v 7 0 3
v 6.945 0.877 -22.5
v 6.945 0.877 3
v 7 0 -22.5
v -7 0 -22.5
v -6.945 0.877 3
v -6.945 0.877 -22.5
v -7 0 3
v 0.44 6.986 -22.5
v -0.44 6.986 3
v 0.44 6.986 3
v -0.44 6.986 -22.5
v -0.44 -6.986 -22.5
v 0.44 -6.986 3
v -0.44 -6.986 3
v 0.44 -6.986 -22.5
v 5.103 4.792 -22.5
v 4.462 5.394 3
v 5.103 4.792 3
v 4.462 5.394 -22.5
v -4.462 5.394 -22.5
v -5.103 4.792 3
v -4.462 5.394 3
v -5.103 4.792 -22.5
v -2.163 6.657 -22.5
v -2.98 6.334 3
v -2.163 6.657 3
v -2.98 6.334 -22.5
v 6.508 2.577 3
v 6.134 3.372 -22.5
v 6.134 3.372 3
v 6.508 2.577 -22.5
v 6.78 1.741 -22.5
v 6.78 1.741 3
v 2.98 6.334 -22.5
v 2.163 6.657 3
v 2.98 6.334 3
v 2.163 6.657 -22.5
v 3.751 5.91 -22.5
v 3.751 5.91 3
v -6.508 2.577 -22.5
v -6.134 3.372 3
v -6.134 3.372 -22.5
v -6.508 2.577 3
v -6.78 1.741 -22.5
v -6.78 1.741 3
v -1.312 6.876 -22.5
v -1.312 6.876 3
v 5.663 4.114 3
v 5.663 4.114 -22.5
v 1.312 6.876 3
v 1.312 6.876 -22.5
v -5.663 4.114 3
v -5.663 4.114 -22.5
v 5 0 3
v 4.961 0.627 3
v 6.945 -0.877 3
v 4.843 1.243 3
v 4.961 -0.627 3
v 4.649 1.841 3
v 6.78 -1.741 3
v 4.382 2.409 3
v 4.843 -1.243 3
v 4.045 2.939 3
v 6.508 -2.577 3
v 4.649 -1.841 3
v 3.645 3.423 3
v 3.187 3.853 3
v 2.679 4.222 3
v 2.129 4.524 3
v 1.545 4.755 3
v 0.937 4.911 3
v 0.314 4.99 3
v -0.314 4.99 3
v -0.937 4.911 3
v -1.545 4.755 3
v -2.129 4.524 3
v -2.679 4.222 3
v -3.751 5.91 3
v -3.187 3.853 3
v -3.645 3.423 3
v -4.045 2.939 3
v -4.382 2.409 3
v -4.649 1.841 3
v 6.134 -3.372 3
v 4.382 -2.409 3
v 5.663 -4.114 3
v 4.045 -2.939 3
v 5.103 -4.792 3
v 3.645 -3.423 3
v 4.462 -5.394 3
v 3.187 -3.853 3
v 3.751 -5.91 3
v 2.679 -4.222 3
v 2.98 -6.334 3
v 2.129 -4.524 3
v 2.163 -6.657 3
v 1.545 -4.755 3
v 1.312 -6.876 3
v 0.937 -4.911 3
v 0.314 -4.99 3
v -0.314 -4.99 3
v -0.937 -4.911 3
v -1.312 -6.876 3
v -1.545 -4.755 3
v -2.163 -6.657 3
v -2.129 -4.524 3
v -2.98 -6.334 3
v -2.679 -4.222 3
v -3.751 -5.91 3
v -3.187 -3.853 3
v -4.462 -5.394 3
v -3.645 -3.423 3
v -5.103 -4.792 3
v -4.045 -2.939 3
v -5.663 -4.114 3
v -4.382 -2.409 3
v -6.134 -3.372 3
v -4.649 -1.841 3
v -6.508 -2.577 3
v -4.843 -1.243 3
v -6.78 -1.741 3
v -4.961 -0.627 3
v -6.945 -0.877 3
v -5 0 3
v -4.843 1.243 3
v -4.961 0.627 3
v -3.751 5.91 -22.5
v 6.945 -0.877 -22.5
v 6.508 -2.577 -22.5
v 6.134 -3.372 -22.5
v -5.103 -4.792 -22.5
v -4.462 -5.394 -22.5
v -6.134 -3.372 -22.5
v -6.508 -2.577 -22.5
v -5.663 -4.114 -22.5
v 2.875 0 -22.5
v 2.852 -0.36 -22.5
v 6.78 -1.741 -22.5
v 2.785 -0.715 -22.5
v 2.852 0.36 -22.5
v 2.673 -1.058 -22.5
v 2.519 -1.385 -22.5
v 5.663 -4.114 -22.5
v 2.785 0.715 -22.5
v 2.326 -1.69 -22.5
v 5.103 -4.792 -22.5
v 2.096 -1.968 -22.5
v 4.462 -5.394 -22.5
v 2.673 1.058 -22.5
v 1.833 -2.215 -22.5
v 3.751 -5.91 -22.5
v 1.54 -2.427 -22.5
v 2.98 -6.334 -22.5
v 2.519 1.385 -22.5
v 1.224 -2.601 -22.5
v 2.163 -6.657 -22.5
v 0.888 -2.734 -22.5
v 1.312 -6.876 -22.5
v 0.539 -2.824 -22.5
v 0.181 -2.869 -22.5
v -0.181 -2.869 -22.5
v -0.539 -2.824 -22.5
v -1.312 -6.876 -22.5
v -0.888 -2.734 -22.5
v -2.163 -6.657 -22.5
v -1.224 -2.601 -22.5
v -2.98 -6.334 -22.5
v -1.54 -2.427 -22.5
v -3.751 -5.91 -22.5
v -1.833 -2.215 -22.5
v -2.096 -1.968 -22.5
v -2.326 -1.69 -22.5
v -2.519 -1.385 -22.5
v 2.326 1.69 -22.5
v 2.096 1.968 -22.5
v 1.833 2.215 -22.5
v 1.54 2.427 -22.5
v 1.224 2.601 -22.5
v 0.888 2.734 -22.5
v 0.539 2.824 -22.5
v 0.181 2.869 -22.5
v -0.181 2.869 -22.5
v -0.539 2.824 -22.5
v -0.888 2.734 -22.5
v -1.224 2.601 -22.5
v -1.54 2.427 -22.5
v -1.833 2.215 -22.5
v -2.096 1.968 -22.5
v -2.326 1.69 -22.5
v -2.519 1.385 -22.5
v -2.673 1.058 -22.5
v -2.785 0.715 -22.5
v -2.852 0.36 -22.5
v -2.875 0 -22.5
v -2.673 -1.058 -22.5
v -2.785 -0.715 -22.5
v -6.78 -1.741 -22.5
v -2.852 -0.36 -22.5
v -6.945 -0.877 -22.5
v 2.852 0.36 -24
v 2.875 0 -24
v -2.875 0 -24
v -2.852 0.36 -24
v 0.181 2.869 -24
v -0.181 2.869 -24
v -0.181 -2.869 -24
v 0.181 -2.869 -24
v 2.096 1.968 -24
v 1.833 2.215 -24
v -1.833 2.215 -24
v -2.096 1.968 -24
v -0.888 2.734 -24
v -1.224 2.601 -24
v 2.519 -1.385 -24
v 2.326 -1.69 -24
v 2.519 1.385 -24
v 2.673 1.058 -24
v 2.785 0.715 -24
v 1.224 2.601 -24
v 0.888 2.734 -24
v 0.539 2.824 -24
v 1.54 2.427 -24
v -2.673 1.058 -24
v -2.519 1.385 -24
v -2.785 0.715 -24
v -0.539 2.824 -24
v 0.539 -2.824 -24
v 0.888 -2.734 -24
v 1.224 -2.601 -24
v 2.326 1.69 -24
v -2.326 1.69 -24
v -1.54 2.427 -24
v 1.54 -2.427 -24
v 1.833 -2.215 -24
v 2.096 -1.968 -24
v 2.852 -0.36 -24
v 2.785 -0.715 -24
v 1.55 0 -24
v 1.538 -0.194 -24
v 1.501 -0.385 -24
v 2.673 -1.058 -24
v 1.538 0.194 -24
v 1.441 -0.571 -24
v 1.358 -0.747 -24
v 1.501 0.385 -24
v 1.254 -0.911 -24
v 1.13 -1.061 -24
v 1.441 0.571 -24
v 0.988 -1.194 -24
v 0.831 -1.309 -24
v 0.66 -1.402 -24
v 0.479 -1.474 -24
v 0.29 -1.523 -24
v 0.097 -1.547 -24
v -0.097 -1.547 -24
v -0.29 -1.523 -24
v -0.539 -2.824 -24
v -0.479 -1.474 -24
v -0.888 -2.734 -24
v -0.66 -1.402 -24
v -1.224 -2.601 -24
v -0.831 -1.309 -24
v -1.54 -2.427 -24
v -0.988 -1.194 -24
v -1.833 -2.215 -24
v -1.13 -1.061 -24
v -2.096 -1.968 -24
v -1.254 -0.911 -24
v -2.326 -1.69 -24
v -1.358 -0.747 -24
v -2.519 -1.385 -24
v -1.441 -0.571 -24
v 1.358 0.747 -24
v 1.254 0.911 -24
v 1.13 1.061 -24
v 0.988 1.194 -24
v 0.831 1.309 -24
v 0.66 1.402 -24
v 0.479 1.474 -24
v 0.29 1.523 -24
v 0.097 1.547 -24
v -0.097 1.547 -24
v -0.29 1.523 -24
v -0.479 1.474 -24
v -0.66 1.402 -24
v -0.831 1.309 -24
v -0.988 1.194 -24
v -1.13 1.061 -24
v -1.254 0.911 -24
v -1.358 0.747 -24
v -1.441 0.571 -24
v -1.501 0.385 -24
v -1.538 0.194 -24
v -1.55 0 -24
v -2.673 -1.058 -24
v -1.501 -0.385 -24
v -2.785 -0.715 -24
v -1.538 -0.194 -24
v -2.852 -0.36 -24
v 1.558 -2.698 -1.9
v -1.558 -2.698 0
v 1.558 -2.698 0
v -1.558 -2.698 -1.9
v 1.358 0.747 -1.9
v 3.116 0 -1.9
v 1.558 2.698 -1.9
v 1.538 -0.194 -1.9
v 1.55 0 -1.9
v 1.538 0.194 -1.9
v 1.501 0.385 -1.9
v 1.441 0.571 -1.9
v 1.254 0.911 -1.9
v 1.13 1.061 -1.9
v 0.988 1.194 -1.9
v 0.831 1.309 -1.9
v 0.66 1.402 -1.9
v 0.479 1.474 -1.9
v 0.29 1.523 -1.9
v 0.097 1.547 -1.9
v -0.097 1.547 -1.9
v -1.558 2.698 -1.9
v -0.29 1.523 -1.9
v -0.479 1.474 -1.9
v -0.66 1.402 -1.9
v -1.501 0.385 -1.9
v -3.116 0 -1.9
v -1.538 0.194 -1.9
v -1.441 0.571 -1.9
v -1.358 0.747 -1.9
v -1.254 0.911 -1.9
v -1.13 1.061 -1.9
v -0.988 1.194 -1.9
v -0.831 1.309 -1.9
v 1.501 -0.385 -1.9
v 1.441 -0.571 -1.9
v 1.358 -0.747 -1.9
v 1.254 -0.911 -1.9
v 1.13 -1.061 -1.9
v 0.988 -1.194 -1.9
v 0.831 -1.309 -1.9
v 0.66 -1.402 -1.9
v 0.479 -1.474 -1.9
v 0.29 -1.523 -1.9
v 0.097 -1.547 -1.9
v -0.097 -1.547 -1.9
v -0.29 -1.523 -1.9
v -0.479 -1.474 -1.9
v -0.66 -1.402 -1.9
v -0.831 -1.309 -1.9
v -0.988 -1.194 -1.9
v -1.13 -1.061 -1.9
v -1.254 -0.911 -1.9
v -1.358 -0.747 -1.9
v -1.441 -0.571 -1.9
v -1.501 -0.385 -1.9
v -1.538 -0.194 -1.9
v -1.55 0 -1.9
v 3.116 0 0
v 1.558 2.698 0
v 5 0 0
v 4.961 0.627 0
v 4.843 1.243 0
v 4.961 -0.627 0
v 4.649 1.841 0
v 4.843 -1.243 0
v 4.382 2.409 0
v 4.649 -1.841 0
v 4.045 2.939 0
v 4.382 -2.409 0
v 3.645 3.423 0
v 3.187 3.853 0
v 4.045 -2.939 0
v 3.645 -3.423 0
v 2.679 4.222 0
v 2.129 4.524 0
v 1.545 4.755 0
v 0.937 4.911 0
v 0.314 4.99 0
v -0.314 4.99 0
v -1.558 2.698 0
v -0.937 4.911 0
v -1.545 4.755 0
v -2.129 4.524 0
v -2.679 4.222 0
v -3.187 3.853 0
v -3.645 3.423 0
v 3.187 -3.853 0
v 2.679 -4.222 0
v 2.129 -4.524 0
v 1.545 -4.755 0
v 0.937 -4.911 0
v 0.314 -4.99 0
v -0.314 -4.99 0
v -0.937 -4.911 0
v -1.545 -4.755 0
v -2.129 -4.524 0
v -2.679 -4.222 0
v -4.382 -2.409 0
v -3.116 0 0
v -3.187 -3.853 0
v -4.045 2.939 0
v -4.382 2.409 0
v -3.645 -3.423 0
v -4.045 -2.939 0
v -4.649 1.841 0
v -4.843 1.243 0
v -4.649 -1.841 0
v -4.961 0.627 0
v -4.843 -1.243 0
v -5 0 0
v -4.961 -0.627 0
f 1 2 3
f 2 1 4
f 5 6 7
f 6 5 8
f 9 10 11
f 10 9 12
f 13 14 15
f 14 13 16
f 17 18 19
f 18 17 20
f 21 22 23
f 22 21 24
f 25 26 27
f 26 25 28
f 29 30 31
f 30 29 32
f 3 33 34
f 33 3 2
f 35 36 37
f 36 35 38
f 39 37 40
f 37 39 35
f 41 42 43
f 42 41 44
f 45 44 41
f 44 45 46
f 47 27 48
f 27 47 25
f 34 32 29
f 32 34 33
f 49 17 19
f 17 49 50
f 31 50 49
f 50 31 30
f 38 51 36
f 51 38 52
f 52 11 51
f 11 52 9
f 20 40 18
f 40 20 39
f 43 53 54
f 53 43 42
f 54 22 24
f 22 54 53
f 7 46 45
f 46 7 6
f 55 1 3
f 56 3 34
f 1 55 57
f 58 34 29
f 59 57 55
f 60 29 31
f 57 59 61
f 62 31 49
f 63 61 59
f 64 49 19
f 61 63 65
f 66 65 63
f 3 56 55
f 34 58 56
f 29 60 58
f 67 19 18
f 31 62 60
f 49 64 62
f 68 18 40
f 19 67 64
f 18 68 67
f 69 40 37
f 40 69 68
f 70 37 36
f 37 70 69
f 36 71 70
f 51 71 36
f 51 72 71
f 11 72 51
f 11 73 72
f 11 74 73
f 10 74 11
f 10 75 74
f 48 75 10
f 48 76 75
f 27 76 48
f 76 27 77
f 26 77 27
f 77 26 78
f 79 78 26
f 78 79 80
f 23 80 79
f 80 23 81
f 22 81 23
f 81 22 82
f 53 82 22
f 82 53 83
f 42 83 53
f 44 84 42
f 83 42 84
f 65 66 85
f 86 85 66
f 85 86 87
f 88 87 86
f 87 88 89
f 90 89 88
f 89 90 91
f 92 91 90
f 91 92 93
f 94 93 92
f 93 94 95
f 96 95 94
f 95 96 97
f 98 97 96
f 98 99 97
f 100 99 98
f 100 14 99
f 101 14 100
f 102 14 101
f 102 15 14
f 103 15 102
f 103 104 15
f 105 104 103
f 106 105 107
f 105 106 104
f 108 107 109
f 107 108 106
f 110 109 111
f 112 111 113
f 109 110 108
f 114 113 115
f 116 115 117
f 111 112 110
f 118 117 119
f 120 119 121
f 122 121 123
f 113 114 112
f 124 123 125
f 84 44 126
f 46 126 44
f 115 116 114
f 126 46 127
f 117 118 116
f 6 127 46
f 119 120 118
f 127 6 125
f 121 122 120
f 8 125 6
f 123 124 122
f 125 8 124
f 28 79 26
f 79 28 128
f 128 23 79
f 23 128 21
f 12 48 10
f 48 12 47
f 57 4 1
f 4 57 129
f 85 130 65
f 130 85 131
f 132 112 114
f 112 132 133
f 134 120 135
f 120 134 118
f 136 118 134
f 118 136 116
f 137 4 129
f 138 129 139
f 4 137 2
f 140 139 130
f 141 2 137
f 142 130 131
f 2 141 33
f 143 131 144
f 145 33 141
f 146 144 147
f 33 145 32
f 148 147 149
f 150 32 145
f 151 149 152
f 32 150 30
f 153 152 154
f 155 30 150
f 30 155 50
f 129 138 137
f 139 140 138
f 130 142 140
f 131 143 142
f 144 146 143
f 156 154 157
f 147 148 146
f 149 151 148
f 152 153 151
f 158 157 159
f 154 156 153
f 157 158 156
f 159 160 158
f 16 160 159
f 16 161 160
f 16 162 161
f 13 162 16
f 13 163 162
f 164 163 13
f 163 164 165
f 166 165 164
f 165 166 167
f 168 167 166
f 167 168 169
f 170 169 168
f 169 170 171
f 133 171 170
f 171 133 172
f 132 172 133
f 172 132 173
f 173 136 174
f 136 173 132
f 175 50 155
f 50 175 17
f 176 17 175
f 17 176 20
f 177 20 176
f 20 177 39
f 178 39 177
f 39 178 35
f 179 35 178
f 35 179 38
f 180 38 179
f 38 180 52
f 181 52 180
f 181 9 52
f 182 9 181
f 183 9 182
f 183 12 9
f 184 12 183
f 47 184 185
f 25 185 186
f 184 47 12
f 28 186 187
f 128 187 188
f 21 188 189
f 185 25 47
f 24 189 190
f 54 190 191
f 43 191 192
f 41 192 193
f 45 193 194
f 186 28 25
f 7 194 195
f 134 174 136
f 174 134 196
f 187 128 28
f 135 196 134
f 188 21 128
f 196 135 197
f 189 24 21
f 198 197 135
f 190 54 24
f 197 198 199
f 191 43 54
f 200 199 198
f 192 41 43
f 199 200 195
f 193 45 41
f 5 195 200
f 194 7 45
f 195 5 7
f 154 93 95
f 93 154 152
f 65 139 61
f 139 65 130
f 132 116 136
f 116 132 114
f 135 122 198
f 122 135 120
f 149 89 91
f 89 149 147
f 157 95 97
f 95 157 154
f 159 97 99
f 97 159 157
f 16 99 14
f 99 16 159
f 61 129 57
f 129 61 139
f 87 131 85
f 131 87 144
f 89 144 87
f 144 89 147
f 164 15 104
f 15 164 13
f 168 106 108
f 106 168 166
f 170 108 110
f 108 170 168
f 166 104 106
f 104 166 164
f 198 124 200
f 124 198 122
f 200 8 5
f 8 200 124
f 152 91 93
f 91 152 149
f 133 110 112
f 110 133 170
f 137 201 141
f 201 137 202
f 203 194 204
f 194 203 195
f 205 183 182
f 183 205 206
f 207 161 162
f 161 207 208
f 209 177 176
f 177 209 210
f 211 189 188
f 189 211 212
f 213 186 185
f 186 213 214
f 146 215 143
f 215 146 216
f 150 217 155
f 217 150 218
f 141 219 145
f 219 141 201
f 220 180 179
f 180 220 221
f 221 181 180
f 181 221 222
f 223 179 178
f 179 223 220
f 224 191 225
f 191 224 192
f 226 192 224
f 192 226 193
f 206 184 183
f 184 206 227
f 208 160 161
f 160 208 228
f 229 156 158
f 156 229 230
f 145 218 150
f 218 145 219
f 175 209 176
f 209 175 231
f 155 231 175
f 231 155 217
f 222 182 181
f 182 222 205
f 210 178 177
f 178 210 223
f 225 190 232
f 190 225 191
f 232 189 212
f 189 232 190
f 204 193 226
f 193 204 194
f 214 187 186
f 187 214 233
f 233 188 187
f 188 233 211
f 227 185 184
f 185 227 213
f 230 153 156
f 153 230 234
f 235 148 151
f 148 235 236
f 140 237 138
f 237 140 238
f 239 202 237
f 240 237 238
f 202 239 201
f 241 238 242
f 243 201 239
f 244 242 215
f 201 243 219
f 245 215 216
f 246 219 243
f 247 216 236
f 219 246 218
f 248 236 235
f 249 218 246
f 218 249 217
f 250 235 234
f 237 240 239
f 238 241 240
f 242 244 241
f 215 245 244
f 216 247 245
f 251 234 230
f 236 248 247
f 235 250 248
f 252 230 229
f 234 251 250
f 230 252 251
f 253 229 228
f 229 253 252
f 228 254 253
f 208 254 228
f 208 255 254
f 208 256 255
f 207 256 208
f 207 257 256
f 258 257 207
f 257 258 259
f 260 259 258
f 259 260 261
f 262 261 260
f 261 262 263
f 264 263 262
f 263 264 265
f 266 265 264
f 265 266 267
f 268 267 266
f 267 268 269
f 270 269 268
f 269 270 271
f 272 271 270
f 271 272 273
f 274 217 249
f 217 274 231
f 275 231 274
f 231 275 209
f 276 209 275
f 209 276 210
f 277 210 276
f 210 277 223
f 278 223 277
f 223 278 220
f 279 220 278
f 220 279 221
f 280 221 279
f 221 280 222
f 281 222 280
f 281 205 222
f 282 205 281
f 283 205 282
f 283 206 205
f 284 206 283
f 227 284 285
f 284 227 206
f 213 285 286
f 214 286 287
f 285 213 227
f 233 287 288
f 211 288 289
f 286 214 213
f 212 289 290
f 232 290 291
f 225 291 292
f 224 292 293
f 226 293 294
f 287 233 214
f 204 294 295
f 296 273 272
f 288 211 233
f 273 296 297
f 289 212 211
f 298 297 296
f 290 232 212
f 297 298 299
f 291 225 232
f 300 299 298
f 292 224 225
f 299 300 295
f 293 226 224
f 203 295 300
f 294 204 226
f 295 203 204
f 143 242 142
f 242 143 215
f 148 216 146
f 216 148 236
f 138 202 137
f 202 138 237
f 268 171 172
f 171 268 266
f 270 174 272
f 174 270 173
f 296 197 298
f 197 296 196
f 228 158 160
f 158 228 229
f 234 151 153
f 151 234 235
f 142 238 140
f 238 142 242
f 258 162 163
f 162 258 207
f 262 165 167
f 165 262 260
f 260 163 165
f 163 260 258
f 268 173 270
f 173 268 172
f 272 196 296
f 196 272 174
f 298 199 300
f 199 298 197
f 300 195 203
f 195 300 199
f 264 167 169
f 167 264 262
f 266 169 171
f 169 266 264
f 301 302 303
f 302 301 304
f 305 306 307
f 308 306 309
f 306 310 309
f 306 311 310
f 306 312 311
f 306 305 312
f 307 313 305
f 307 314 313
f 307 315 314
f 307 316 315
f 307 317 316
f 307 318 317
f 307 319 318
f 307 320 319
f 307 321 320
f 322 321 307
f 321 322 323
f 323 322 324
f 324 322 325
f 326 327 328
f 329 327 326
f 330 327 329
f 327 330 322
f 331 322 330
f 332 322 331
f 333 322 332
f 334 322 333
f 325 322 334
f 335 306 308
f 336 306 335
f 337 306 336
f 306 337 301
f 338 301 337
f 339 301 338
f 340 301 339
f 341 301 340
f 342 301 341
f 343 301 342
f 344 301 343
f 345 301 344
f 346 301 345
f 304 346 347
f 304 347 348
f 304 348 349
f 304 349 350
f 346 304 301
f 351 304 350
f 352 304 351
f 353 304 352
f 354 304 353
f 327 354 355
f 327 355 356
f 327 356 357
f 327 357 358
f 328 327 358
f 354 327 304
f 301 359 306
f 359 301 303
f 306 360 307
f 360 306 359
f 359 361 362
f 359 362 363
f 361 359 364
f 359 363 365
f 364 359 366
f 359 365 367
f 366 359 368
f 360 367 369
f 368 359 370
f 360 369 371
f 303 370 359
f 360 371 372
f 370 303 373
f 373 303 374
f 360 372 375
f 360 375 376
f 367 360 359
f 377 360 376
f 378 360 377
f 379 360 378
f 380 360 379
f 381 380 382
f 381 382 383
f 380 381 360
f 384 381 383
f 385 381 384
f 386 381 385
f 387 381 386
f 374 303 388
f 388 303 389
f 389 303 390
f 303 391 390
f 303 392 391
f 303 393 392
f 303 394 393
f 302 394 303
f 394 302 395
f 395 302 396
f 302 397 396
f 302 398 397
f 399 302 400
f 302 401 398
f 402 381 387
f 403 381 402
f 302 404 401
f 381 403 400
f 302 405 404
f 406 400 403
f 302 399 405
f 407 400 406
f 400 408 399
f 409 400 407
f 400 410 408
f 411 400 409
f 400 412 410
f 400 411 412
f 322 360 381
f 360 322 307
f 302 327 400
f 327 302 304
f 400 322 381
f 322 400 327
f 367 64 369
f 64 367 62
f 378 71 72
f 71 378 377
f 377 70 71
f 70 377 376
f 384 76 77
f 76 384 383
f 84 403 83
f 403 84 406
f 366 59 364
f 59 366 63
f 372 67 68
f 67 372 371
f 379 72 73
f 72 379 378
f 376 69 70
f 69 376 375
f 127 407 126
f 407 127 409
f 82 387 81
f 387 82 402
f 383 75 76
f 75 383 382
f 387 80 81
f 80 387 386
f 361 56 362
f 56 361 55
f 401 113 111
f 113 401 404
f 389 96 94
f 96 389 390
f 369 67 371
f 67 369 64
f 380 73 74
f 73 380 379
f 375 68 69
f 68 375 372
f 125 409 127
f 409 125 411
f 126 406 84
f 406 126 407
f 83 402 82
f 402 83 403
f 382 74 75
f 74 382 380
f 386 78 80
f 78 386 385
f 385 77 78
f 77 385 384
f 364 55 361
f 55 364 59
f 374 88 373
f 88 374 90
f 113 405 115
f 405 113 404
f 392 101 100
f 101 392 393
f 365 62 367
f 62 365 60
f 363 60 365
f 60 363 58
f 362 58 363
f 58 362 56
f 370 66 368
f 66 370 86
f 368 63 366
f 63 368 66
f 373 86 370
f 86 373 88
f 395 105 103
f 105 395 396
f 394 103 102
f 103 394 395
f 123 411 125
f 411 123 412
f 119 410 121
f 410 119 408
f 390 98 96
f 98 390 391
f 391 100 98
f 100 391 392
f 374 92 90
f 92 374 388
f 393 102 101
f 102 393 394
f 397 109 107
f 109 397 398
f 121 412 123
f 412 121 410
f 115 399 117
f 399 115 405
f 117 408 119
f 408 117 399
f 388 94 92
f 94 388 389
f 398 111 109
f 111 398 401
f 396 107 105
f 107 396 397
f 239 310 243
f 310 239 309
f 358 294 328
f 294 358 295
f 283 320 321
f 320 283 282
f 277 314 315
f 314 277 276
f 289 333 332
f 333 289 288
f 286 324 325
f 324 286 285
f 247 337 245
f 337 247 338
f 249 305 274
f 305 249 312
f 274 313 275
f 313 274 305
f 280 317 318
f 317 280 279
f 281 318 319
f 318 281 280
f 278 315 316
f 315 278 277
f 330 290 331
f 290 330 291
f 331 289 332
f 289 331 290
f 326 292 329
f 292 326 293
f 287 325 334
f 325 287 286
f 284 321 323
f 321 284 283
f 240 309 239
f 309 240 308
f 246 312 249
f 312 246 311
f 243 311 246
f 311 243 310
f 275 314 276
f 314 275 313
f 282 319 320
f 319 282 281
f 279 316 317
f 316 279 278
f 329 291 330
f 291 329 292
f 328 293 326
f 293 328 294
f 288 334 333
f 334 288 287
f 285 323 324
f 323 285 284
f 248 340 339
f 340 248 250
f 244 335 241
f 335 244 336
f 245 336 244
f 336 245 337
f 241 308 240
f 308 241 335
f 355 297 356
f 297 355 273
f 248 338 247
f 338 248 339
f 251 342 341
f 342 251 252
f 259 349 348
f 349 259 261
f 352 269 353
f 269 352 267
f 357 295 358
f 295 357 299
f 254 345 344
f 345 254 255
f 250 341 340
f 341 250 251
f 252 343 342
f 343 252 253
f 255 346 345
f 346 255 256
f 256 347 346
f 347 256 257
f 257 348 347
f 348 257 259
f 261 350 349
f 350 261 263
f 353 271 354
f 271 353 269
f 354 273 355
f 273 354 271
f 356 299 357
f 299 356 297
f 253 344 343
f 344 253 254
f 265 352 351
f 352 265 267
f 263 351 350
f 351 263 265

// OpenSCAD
$fn = 50;

difference() {
	union() {
		translate(v = [0, 0, -22.5]) {
			cylinder(h = 25.5, r = 7.0);
		}
		#translate(v = [0, 0, -24.0]) {
			cylinder(h = 24, r = 2.875);
		}
	}
	union() {
		translate(v = [0, 0, 0]) {
			rotate(a = [0, 0, 0]) {
				difference() {
					union() {
						translate(v = [0, 0, -1.9]) {
							linear_extrude(height = 1.9) {
								polygon(points = [[3.1158, 0.0], [1.5579000000000005, 2.698361953111554], [-1.5578999999999994, 2.6983619531115544], [-3.1158, 3.815754496783323e-16], [-1.5579000000000014, -2.6983619531115535], [1.557899999999998, -2.6983619531115552]]);
							}
						}
					}
					union();
				}
			}
		}
		#cylinder(h = 3, r = 5.0);
		#translate(v = [0, 0, -100.0]) {
			cylinder(h = 200, r = 1.55);
		}
	}
}
